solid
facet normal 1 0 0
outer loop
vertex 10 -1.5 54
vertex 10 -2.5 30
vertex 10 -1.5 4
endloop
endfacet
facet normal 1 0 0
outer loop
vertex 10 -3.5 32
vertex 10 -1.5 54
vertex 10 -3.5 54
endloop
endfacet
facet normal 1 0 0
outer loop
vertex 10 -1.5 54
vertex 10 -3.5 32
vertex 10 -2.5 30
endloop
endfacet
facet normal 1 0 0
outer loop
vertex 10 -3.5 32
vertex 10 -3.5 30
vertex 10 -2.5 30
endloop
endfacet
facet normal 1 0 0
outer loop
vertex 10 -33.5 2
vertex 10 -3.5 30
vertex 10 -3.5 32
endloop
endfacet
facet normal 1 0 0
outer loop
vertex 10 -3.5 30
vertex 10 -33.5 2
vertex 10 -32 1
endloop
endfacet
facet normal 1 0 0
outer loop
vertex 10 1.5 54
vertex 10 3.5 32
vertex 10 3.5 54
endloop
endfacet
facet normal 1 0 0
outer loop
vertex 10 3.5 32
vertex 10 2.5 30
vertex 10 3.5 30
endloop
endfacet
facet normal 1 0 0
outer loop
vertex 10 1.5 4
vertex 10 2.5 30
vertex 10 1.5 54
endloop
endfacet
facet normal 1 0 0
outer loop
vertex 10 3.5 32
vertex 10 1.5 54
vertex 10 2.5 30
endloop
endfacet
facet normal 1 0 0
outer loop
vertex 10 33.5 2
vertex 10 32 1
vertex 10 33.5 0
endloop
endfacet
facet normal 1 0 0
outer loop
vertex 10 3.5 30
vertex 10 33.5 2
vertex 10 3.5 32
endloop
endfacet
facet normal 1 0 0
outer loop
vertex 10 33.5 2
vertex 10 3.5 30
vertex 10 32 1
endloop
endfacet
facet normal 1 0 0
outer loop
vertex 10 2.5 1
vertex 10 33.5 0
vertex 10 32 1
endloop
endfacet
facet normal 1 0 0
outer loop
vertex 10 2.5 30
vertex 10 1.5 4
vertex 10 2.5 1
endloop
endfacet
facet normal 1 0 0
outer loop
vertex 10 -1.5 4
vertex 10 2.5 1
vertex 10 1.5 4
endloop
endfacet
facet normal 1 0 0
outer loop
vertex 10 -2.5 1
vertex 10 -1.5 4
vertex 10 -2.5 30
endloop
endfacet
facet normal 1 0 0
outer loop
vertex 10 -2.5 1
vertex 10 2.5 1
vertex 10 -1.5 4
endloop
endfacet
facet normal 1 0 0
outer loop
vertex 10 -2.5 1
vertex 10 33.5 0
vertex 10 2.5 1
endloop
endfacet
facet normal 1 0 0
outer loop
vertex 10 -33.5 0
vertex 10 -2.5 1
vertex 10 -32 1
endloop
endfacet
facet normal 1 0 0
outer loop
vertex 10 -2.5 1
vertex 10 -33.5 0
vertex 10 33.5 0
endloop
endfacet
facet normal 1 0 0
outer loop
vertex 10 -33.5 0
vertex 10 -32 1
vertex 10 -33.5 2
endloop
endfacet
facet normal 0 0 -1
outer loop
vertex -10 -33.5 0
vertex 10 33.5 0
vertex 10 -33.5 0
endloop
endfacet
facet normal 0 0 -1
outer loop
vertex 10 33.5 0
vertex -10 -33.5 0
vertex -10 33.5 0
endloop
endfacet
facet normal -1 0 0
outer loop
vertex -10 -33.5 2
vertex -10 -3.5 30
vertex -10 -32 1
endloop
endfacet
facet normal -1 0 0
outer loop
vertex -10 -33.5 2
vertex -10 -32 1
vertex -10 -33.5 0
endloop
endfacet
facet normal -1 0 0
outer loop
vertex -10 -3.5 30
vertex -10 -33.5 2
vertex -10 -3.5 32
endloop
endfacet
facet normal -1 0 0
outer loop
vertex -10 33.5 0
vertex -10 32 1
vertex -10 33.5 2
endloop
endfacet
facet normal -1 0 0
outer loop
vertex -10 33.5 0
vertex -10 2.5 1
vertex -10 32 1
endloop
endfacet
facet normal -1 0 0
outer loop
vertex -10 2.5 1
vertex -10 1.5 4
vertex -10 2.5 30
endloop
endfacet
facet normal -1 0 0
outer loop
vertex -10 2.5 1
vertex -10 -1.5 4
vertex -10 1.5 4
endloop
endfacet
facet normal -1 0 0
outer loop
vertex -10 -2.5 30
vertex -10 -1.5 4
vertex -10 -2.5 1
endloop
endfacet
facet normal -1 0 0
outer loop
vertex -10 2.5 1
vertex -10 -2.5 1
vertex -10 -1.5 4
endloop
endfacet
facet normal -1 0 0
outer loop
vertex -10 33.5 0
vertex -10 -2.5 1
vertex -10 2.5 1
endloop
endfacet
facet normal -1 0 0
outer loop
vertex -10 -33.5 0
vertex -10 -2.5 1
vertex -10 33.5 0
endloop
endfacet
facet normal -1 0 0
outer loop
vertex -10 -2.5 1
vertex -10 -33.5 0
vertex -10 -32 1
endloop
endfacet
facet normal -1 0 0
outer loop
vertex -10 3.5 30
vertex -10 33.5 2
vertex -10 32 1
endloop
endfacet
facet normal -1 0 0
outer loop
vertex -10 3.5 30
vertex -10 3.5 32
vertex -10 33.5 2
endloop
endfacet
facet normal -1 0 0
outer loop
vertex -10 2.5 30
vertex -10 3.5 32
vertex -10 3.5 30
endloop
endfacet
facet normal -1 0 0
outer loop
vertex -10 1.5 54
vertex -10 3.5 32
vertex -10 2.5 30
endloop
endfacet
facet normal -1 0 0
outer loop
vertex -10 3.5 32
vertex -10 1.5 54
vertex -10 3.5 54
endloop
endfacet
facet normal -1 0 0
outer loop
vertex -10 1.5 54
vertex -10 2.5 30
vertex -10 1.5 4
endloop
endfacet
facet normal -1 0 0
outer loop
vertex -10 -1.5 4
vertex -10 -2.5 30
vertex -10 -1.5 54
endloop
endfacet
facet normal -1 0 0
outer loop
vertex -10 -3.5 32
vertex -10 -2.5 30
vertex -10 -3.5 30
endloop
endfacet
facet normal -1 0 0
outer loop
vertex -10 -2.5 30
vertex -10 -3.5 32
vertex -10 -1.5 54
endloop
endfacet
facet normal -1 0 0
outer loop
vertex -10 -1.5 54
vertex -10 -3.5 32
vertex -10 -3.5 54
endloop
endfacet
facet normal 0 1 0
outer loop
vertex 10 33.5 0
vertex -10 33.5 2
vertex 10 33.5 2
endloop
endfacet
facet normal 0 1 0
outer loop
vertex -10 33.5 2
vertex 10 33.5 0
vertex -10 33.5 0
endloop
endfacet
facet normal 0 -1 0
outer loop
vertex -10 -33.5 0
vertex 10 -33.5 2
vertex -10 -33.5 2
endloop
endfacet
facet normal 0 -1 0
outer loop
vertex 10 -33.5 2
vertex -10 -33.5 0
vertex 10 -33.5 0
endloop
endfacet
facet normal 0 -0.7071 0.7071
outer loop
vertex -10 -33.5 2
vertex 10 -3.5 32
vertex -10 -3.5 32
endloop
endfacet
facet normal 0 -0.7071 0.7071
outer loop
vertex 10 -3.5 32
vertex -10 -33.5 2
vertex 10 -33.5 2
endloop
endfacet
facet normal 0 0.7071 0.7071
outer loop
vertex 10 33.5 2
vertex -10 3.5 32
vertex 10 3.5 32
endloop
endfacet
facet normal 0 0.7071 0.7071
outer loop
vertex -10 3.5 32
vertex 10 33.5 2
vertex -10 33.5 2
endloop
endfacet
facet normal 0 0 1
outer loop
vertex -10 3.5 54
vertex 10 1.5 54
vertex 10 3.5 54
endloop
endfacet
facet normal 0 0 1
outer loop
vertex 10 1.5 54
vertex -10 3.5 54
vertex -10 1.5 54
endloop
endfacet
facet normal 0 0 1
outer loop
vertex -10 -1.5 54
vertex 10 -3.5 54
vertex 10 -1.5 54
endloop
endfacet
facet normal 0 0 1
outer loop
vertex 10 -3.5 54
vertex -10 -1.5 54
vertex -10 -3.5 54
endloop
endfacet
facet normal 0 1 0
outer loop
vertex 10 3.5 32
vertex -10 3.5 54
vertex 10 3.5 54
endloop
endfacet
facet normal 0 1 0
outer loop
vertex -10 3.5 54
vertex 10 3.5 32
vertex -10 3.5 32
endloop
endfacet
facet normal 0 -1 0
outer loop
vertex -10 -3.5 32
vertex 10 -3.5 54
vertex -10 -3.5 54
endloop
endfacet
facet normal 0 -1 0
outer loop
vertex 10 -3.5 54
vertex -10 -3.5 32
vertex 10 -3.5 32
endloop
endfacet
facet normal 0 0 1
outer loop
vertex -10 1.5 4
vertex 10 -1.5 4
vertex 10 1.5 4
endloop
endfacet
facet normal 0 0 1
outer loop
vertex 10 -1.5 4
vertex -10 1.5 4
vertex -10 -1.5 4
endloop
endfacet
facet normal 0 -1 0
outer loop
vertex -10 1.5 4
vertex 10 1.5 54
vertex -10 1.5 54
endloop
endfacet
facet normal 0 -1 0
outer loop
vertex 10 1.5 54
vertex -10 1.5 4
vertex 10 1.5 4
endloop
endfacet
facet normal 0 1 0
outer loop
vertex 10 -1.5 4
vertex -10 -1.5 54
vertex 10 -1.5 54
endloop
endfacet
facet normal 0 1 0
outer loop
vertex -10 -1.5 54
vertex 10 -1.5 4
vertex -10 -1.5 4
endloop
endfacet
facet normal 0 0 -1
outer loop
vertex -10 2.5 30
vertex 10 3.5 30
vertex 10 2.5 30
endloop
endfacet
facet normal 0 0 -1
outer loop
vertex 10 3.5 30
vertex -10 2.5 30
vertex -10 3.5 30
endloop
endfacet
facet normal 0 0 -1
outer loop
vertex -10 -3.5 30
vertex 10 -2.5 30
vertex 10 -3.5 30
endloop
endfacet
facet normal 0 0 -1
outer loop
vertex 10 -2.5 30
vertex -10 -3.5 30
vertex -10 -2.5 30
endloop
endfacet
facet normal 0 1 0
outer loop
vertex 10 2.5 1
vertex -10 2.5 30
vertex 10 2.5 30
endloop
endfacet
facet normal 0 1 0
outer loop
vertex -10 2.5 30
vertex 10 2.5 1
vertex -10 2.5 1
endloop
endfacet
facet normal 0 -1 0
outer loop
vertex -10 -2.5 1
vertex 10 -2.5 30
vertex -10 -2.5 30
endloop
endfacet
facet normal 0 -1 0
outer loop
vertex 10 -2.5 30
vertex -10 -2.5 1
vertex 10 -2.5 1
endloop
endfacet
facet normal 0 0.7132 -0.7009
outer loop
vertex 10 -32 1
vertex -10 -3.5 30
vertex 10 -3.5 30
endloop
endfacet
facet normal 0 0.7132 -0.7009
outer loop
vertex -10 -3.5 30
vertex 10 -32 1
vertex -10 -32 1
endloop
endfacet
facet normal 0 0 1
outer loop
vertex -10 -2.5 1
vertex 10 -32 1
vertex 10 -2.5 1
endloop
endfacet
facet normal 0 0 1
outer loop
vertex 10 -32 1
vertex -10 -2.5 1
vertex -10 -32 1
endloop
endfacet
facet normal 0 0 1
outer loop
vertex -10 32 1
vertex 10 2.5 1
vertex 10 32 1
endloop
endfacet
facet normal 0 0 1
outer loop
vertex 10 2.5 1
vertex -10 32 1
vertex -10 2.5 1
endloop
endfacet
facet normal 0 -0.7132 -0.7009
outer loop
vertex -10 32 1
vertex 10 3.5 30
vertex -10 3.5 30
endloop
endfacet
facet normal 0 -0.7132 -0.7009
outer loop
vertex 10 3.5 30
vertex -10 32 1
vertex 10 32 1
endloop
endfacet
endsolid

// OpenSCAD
module slot(thickness, walls, base, height, width) {
    total_thickness = thickness + walls * 2;
    total_height = height + base;
    
    difference() {
        translate([-width/2, -total_thickness/2, 0]) cube([width, total_thickness, total_height]);
        translate([-(width + 10)/2, -thickness/2, base]) cube([width + 10, thickness, total_height + 10]);
    }
}

module stand(top_height, top_width, base_height, base_width, base_thick, base_stretch) {
    translate([-base_width/2, -base_height/2, 0]) cube([base_width, base_height, base_thick]);
    translate([0, 0, base_thick]) polyhedron([
        [-base_width/2, -base_height/2, 0],
        [base_width/2, -base_height/2, 0],
        [base_width/2, base_height/2, 0],
        [-base_width/2, base_height/2, 0],
    
        [-top_width/2, -top_height/2, base_stretch],
        [top_width/2, -top_height/2, base_stretch],
        [top_width/2, top_height/2, base_stretch],
        [-top_width/2, top_height/2, base_stretch],
    
    ], [
        [ 0, 4, 5, 1 ],
        [ 1, 5, 6, 2 ],
        [ 2, 6, 7, 3 ],
        [ 3, 7, 4, 0 ],
        
        [ 7, 6, 5, 4 ],
        [ 0, 1, 2, 3 ],
    ]);
}

// Slot
thickness = 3;
walls = 2;
base = 4;
height = 50;  // for bigger, change this
width = 20;

// Stand
top_height = thickness+walls*2;
top_width = 20;
base_height = top_height + (height / 50 * 60);
base_width = top_width + 0;
base_thick = 2;
base_stretch = height / 50 * 30;

module slim_slot(thickness, walls, base, height, width, slim_height, slim) {
    difference() {
        slot(thickness, walls, base, height, width);
        translate([-width/2, thickness/2+walls-slim, 0]) cube([width, 100, slim_height]);
        translate([-width/2, -thickness/2-walls-100+slim, 0]) cube([width, 100, slim_height]);
    }
}

difference() {
    stand(top_height, top_width, base_height, base_width, base_thick, base_stretch);
    // Empty the slot
    translate([-width/2, -thickness/2, 0]) cube([width, thickness, height]);
    difference() {
        translate([0, 0, 1]) stand(top_height, top_width, base_height-3, base_width, 0, base_stretch-1);
        // Optional
        //translate([0, 0, 1.5]) stand(top_height, top_width, 15, base_width, 0, 3);
        }
}
slim_slot(thickness, walls, base, height, width, base_stretch, 1);
